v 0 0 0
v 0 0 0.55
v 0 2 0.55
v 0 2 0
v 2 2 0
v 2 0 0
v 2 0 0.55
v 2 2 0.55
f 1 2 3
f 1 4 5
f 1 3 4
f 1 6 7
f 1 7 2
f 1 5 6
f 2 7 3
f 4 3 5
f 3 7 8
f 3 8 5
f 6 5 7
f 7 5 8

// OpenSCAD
/* Warning, this is a very basic generator with a lot of approximation 
input data : [USON, UAX, 2x2x0.55mm, 8, , A, C04-00200A]
generated by com.zoubworld.electronics.cad.model3d.Basic
Date : Sun Feb 15 10:50:48 CET 2026
*/

//body
color("black")
translate([0,0,0])
cube([2.0,2.0,0.55], center=false);
